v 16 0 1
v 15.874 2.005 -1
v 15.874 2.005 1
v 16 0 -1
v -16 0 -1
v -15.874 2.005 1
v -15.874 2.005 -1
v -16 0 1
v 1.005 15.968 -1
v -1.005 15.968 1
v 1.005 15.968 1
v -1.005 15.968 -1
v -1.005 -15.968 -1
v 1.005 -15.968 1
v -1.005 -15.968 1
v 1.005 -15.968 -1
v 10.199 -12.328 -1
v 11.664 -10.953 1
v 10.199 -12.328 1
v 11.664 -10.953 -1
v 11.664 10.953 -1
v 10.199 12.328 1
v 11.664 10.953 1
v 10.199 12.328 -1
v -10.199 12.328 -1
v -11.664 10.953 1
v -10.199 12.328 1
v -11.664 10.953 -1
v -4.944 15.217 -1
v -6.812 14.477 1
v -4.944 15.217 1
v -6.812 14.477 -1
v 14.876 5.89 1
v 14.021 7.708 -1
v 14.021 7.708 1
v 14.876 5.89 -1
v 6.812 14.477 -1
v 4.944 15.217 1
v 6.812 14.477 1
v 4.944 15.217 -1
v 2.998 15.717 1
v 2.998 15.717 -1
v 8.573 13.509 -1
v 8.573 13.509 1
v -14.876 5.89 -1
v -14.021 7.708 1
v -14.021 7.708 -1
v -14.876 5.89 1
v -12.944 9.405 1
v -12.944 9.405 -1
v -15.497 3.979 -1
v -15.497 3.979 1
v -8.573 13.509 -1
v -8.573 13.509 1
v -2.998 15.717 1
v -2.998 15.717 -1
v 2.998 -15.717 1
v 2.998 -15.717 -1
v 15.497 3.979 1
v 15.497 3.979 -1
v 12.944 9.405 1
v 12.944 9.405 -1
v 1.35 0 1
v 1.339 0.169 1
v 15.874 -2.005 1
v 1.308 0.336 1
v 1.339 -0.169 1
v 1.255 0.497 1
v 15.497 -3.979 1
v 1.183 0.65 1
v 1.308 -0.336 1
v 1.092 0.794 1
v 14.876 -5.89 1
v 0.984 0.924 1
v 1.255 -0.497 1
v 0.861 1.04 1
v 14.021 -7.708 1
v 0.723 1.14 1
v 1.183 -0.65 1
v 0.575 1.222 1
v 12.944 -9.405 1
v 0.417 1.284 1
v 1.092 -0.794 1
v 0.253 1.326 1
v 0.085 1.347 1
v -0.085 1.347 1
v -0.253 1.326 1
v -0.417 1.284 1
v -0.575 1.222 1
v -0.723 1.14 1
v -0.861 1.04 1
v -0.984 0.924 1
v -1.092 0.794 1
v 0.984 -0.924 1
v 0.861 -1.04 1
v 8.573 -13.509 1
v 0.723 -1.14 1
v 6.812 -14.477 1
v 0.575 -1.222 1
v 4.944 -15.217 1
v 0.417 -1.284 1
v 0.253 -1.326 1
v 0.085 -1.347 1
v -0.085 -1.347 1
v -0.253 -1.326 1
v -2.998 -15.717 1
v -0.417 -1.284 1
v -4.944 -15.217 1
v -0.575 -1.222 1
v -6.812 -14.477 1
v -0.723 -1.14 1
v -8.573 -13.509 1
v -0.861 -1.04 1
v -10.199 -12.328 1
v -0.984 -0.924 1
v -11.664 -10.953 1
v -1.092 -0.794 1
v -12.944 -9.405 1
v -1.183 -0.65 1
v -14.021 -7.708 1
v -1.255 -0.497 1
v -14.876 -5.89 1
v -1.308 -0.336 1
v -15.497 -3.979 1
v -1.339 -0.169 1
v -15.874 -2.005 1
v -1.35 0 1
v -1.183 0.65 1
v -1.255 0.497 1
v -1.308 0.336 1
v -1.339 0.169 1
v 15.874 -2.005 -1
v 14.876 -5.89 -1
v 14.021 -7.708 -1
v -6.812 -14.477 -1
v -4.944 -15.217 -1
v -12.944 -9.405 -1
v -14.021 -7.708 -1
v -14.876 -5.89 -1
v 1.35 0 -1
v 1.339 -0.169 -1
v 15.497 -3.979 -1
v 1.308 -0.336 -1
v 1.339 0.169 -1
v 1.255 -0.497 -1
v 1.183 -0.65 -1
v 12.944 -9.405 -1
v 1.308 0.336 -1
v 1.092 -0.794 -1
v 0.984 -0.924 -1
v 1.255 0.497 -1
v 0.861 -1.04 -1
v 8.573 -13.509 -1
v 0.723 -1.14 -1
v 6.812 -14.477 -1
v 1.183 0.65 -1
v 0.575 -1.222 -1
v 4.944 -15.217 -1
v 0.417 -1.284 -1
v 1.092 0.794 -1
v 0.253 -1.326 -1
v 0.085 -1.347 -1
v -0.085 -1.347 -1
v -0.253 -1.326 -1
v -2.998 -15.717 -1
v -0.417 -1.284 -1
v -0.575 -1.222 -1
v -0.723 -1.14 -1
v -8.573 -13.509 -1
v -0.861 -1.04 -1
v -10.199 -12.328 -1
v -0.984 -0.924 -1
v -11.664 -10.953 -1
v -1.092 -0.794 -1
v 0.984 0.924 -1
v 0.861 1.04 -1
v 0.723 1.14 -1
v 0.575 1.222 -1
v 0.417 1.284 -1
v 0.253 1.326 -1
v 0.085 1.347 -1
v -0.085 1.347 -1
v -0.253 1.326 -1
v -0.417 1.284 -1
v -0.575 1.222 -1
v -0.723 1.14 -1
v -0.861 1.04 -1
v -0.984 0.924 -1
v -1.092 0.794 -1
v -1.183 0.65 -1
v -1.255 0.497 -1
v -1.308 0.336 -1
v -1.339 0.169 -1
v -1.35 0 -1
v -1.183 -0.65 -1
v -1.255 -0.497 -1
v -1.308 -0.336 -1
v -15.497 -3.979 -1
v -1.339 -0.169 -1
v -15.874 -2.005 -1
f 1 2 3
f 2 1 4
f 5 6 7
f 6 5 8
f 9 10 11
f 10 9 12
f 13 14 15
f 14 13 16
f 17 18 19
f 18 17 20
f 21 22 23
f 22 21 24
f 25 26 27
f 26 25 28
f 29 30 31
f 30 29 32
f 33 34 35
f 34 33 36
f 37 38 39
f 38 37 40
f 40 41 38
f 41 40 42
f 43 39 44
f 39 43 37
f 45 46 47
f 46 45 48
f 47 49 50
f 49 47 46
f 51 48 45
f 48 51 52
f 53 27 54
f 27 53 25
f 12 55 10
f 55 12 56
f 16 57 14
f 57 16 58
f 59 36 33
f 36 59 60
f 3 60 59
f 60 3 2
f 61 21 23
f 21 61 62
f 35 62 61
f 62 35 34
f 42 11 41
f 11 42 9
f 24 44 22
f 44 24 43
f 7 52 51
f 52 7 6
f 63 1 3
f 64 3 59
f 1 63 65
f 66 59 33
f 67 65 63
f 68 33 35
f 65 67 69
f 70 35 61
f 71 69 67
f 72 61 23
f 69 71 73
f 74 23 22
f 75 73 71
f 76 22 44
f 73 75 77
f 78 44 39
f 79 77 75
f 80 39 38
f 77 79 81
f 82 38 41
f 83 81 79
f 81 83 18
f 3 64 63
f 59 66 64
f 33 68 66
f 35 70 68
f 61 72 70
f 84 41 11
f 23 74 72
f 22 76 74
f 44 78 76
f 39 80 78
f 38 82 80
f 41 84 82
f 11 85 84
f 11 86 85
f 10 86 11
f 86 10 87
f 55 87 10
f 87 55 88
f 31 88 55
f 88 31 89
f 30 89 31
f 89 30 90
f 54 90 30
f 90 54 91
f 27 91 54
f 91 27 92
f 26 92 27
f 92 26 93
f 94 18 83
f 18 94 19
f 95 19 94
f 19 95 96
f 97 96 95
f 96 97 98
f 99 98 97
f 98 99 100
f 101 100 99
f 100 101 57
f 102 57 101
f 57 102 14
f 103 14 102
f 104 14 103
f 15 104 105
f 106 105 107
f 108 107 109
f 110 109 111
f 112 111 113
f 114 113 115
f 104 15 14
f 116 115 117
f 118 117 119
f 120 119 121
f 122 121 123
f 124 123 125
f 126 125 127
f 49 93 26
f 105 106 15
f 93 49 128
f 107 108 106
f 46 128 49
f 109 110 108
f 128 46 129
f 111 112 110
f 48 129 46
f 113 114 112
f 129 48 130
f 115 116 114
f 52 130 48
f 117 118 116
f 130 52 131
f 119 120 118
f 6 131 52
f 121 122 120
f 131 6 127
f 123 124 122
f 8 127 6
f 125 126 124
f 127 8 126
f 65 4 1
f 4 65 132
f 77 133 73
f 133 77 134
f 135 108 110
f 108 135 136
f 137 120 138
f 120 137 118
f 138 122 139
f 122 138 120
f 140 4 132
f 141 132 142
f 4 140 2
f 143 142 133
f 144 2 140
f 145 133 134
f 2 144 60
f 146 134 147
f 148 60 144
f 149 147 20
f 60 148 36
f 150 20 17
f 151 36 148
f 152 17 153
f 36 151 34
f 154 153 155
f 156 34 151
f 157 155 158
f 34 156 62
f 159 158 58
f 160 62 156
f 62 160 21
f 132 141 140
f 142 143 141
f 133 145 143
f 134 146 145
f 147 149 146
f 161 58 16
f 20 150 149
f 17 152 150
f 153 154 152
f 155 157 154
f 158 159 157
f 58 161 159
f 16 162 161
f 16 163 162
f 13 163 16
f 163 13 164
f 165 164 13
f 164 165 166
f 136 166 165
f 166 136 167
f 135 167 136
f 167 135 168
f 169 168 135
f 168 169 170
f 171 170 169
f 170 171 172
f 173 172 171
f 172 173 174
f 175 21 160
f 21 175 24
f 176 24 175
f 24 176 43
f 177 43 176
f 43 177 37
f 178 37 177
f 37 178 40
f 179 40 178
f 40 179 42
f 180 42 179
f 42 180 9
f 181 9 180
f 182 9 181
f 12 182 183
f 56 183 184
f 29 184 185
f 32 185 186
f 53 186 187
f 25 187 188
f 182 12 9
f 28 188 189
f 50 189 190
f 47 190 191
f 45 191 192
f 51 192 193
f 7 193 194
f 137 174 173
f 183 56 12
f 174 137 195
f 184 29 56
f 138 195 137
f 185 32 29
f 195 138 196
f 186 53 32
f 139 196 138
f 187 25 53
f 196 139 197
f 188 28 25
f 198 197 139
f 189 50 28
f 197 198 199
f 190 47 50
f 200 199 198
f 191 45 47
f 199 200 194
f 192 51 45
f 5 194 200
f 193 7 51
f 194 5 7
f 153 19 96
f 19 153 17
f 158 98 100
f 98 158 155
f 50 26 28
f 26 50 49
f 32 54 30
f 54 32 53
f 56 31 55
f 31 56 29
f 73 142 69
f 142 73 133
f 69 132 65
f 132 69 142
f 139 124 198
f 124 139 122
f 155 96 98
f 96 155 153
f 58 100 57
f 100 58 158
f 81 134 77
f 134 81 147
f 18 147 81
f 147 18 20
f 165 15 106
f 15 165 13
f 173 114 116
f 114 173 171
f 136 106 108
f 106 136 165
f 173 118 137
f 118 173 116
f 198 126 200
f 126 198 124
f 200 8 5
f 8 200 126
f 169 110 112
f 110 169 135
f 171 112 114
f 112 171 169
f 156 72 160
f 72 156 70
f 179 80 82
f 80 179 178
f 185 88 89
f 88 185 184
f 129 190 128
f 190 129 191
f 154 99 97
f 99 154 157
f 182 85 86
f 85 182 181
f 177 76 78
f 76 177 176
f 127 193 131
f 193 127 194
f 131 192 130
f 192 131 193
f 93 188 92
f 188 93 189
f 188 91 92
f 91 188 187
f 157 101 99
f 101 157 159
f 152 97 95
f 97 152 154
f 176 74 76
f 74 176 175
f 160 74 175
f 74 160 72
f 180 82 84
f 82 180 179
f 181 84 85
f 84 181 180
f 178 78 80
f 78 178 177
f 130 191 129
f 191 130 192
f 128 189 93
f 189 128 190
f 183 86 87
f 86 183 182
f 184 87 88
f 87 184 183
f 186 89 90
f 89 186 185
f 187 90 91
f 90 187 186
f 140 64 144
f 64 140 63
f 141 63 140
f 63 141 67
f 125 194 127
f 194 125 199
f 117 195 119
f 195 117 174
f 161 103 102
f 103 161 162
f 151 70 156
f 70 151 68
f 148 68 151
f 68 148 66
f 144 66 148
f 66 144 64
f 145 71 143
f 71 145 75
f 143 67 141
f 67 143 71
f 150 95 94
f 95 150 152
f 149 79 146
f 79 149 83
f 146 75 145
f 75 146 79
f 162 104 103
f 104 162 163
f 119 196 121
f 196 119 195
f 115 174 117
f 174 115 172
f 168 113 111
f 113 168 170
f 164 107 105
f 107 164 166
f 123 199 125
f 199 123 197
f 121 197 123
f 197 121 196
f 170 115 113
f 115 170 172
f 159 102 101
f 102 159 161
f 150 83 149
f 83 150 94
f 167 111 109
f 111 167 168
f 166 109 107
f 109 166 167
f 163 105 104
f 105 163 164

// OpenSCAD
$fn = 50;


difference() {
	union() {
		translate(v = [0, 0, -1.0000000000]) {
			cylinder(h = 2, r = 16.0000000000);
		}
	}
	union() {
		translate(v = [0, 0, -100.0000000000]) {
			cylinder(h = 200, r = 1.3500000000);
		}
	}
}
